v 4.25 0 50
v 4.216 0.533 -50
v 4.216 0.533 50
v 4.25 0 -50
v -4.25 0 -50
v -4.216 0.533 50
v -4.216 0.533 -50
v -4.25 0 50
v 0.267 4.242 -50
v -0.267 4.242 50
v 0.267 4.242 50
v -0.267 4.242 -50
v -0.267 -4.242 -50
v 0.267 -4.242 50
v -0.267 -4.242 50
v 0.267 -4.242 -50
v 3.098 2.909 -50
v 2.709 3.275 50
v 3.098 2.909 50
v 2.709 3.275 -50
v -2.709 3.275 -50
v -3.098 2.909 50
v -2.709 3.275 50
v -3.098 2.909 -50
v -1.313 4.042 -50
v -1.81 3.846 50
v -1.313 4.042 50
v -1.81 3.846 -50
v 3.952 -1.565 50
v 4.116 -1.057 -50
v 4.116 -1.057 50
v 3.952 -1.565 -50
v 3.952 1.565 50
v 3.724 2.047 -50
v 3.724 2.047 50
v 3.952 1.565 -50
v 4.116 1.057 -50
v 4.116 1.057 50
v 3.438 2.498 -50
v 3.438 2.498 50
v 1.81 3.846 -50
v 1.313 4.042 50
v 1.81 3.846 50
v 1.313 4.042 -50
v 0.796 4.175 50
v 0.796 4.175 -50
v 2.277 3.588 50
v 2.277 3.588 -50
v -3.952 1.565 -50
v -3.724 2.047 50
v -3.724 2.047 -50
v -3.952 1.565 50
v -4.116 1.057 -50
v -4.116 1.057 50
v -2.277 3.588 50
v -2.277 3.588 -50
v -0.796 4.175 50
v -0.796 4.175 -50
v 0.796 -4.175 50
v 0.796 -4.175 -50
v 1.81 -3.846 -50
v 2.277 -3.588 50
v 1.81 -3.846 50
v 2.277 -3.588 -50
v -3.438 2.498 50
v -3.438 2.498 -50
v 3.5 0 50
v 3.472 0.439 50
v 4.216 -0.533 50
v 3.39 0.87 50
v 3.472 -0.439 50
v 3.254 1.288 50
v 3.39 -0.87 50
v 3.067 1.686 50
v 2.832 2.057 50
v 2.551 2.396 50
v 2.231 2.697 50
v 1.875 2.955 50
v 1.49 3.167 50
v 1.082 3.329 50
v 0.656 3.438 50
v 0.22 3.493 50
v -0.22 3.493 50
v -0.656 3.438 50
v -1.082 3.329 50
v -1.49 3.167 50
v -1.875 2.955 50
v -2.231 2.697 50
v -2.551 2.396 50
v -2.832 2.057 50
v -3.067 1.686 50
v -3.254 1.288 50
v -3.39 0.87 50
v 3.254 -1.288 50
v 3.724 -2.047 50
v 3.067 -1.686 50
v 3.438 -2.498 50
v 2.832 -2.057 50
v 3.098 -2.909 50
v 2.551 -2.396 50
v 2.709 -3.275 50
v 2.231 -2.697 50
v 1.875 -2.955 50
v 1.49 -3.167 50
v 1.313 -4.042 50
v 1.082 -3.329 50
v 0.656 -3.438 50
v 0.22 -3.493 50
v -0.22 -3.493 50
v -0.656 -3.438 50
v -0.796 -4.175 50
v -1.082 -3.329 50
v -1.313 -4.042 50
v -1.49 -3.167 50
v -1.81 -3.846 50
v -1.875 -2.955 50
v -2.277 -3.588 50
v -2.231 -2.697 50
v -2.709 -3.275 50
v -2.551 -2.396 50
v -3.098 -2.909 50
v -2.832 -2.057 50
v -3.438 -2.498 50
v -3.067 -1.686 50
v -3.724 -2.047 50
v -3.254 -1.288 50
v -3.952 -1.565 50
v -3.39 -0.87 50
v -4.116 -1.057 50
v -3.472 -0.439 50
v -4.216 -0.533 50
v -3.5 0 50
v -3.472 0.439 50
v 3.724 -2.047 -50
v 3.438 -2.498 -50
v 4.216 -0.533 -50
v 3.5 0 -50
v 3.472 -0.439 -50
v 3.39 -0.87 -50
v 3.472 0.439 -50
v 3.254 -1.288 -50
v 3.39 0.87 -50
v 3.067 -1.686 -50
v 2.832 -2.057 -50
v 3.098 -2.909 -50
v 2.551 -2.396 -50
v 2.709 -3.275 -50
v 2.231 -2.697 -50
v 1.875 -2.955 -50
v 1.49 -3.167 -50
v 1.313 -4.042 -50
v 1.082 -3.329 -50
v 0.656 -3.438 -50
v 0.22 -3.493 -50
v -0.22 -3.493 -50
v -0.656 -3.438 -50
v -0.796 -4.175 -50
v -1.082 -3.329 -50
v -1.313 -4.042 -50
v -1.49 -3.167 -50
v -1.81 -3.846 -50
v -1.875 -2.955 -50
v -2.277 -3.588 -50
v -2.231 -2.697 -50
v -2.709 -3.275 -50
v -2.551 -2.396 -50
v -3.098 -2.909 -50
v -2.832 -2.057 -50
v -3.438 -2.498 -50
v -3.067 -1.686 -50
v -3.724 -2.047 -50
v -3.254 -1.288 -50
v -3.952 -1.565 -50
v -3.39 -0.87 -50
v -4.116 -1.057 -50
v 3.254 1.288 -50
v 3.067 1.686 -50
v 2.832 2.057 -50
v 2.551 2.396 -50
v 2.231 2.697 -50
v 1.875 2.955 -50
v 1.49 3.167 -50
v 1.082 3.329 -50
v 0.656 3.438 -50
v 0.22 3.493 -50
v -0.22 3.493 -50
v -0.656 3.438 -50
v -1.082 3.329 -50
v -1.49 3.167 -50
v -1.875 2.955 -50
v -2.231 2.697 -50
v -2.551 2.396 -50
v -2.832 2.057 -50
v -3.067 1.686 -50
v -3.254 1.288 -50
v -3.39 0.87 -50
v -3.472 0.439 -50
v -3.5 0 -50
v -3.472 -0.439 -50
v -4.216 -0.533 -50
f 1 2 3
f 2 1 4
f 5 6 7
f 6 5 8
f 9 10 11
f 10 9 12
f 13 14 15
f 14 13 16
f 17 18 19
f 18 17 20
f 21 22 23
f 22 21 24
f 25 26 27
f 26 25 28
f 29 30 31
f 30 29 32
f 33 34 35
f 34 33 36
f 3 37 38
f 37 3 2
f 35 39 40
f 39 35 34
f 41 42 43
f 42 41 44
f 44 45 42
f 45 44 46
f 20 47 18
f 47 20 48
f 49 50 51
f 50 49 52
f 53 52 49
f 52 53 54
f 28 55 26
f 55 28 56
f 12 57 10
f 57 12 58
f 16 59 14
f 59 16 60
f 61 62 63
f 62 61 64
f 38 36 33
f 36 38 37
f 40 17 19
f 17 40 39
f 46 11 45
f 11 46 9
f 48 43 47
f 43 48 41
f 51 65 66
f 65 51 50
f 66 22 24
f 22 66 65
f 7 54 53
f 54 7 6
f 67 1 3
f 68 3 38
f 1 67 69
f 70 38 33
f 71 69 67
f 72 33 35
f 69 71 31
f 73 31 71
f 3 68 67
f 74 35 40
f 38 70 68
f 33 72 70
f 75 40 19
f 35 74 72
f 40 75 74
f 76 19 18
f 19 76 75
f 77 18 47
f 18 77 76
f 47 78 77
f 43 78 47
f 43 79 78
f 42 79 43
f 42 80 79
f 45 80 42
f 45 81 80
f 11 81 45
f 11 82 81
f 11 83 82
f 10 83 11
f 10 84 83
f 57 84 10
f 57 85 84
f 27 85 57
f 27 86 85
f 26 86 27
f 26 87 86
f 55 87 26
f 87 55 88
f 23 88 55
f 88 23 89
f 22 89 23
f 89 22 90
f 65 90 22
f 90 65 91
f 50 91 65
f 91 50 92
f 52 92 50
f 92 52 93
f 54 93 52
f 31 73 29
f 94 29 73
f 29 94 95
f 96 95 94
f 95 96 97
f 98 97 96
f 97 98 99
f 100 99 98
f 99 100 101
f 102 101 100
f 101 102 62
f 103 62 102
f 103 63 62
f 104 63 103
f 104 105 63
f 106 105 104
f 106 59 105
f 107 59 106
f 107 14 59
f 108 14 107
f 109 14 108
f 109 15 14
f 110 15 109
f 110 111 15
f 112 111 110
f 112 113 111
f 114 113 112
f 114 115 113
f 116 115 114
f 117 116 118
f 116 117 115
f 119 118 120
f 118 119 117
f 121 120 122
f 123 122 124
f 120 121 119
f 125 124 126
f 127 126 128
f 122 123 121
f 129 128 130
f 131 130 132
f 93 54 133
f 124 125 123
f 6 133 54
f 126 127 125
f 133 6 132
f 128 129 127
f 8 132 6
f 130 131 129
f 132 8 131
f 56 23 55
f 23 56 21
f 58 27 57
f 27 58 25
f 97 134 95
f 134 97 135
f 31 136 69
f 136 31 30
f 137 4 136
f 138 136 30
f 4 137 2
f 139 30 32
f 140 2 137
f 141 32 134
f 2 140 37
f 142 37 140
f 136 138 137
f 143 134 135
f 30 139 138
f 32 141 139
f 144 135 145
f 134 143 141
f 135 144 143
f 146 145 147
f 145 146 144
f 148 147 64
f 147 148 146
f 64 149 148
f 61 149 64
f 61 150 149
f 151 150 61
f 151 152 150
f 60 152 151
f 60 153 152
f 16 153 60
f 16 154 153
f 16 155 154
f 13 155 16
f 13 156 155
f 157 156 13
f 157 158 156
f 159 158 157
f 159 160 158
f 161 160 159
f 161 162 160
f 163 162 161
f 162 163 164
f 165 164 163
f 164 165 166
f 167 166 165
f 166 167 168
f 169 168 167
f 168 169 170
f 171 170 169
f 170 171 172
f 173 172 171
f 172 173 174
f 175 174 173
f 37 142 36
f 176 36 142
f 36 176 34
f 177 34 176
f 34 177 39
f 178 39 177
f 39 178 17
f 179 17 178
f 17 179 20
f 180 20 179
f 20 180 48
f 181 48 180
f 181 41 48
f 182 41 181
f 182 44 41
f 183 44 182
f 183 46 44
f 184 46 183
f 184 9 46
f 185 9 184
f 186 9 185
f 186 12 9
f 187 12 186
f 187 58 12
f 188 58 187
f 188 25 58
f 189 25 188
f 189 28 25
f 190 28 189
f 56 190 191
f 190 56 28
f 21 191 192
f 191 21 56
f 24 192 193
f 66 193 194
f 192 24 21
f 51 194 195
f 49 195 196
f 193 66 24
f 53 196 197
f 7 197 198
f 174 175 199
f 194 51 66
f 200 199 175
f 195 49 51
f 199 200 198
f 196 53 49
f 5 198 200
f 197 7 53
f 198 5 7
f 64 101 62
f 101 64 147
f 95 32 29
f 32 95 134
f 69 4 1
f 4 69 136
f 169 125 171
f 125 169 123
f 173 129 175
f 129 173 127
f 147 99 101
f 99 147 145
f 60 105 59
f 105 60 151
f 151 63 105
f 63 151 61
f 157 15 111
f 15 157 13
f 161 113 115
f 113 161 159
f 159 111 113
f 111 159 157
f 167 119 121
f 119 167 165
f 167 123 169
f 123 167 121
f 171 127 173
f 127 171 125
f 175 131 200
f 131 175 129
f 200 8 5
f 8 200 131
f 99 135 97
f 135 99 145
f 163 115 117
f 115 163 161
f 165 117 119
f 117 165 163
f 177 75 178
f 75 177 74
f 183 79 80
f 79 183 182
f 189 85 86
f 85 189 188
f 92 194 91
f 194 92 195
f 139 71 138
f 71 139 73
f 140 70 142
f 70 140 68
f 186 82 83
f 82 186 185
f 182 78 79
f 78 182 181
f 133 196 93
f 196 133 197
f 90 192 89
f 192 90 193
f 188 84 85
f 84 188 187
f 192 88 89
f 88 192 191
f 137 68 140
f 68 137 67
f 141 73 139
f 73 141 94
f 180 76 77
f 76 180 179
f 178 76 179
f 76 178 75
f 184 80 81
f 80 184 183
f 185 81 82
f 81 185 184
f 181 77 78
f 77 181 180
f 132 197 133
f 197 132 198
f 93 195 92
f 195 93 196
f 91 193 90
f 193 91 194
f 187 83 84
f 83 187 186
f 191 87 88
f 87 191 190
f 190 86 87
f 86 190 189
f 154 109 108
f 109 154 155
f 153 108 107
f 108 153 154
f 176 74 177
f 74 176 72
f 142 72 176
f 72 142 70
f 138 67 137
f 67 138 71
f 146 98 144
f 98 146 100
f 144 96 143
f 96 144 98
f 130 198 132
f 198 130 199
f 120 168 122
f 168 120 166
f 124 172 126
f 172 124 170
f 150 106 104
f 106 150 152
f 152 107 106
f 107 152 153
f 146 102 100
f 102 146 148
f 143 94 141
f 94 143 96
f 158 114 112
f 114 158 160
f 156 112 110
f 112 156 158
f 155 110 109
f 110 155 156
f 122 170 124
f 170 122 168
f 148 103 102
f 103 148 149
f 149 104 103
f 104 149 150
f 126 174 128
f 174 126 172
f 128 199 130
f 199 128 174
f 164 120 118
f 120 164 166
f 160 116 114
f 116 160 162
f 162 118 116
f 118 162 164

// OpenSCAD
$fn = 50;


difference() {
	union() {
		translate(v = [0, 0, -50.0000000000]) {
			cylinder(h = 100, r = 4.2500000000);
		}
	}
	union() {
		translate(v = [0, 0, -100.0000000000]) {
			cylinder(h = 200, r = 3.5000000000);
		}
	}
}
